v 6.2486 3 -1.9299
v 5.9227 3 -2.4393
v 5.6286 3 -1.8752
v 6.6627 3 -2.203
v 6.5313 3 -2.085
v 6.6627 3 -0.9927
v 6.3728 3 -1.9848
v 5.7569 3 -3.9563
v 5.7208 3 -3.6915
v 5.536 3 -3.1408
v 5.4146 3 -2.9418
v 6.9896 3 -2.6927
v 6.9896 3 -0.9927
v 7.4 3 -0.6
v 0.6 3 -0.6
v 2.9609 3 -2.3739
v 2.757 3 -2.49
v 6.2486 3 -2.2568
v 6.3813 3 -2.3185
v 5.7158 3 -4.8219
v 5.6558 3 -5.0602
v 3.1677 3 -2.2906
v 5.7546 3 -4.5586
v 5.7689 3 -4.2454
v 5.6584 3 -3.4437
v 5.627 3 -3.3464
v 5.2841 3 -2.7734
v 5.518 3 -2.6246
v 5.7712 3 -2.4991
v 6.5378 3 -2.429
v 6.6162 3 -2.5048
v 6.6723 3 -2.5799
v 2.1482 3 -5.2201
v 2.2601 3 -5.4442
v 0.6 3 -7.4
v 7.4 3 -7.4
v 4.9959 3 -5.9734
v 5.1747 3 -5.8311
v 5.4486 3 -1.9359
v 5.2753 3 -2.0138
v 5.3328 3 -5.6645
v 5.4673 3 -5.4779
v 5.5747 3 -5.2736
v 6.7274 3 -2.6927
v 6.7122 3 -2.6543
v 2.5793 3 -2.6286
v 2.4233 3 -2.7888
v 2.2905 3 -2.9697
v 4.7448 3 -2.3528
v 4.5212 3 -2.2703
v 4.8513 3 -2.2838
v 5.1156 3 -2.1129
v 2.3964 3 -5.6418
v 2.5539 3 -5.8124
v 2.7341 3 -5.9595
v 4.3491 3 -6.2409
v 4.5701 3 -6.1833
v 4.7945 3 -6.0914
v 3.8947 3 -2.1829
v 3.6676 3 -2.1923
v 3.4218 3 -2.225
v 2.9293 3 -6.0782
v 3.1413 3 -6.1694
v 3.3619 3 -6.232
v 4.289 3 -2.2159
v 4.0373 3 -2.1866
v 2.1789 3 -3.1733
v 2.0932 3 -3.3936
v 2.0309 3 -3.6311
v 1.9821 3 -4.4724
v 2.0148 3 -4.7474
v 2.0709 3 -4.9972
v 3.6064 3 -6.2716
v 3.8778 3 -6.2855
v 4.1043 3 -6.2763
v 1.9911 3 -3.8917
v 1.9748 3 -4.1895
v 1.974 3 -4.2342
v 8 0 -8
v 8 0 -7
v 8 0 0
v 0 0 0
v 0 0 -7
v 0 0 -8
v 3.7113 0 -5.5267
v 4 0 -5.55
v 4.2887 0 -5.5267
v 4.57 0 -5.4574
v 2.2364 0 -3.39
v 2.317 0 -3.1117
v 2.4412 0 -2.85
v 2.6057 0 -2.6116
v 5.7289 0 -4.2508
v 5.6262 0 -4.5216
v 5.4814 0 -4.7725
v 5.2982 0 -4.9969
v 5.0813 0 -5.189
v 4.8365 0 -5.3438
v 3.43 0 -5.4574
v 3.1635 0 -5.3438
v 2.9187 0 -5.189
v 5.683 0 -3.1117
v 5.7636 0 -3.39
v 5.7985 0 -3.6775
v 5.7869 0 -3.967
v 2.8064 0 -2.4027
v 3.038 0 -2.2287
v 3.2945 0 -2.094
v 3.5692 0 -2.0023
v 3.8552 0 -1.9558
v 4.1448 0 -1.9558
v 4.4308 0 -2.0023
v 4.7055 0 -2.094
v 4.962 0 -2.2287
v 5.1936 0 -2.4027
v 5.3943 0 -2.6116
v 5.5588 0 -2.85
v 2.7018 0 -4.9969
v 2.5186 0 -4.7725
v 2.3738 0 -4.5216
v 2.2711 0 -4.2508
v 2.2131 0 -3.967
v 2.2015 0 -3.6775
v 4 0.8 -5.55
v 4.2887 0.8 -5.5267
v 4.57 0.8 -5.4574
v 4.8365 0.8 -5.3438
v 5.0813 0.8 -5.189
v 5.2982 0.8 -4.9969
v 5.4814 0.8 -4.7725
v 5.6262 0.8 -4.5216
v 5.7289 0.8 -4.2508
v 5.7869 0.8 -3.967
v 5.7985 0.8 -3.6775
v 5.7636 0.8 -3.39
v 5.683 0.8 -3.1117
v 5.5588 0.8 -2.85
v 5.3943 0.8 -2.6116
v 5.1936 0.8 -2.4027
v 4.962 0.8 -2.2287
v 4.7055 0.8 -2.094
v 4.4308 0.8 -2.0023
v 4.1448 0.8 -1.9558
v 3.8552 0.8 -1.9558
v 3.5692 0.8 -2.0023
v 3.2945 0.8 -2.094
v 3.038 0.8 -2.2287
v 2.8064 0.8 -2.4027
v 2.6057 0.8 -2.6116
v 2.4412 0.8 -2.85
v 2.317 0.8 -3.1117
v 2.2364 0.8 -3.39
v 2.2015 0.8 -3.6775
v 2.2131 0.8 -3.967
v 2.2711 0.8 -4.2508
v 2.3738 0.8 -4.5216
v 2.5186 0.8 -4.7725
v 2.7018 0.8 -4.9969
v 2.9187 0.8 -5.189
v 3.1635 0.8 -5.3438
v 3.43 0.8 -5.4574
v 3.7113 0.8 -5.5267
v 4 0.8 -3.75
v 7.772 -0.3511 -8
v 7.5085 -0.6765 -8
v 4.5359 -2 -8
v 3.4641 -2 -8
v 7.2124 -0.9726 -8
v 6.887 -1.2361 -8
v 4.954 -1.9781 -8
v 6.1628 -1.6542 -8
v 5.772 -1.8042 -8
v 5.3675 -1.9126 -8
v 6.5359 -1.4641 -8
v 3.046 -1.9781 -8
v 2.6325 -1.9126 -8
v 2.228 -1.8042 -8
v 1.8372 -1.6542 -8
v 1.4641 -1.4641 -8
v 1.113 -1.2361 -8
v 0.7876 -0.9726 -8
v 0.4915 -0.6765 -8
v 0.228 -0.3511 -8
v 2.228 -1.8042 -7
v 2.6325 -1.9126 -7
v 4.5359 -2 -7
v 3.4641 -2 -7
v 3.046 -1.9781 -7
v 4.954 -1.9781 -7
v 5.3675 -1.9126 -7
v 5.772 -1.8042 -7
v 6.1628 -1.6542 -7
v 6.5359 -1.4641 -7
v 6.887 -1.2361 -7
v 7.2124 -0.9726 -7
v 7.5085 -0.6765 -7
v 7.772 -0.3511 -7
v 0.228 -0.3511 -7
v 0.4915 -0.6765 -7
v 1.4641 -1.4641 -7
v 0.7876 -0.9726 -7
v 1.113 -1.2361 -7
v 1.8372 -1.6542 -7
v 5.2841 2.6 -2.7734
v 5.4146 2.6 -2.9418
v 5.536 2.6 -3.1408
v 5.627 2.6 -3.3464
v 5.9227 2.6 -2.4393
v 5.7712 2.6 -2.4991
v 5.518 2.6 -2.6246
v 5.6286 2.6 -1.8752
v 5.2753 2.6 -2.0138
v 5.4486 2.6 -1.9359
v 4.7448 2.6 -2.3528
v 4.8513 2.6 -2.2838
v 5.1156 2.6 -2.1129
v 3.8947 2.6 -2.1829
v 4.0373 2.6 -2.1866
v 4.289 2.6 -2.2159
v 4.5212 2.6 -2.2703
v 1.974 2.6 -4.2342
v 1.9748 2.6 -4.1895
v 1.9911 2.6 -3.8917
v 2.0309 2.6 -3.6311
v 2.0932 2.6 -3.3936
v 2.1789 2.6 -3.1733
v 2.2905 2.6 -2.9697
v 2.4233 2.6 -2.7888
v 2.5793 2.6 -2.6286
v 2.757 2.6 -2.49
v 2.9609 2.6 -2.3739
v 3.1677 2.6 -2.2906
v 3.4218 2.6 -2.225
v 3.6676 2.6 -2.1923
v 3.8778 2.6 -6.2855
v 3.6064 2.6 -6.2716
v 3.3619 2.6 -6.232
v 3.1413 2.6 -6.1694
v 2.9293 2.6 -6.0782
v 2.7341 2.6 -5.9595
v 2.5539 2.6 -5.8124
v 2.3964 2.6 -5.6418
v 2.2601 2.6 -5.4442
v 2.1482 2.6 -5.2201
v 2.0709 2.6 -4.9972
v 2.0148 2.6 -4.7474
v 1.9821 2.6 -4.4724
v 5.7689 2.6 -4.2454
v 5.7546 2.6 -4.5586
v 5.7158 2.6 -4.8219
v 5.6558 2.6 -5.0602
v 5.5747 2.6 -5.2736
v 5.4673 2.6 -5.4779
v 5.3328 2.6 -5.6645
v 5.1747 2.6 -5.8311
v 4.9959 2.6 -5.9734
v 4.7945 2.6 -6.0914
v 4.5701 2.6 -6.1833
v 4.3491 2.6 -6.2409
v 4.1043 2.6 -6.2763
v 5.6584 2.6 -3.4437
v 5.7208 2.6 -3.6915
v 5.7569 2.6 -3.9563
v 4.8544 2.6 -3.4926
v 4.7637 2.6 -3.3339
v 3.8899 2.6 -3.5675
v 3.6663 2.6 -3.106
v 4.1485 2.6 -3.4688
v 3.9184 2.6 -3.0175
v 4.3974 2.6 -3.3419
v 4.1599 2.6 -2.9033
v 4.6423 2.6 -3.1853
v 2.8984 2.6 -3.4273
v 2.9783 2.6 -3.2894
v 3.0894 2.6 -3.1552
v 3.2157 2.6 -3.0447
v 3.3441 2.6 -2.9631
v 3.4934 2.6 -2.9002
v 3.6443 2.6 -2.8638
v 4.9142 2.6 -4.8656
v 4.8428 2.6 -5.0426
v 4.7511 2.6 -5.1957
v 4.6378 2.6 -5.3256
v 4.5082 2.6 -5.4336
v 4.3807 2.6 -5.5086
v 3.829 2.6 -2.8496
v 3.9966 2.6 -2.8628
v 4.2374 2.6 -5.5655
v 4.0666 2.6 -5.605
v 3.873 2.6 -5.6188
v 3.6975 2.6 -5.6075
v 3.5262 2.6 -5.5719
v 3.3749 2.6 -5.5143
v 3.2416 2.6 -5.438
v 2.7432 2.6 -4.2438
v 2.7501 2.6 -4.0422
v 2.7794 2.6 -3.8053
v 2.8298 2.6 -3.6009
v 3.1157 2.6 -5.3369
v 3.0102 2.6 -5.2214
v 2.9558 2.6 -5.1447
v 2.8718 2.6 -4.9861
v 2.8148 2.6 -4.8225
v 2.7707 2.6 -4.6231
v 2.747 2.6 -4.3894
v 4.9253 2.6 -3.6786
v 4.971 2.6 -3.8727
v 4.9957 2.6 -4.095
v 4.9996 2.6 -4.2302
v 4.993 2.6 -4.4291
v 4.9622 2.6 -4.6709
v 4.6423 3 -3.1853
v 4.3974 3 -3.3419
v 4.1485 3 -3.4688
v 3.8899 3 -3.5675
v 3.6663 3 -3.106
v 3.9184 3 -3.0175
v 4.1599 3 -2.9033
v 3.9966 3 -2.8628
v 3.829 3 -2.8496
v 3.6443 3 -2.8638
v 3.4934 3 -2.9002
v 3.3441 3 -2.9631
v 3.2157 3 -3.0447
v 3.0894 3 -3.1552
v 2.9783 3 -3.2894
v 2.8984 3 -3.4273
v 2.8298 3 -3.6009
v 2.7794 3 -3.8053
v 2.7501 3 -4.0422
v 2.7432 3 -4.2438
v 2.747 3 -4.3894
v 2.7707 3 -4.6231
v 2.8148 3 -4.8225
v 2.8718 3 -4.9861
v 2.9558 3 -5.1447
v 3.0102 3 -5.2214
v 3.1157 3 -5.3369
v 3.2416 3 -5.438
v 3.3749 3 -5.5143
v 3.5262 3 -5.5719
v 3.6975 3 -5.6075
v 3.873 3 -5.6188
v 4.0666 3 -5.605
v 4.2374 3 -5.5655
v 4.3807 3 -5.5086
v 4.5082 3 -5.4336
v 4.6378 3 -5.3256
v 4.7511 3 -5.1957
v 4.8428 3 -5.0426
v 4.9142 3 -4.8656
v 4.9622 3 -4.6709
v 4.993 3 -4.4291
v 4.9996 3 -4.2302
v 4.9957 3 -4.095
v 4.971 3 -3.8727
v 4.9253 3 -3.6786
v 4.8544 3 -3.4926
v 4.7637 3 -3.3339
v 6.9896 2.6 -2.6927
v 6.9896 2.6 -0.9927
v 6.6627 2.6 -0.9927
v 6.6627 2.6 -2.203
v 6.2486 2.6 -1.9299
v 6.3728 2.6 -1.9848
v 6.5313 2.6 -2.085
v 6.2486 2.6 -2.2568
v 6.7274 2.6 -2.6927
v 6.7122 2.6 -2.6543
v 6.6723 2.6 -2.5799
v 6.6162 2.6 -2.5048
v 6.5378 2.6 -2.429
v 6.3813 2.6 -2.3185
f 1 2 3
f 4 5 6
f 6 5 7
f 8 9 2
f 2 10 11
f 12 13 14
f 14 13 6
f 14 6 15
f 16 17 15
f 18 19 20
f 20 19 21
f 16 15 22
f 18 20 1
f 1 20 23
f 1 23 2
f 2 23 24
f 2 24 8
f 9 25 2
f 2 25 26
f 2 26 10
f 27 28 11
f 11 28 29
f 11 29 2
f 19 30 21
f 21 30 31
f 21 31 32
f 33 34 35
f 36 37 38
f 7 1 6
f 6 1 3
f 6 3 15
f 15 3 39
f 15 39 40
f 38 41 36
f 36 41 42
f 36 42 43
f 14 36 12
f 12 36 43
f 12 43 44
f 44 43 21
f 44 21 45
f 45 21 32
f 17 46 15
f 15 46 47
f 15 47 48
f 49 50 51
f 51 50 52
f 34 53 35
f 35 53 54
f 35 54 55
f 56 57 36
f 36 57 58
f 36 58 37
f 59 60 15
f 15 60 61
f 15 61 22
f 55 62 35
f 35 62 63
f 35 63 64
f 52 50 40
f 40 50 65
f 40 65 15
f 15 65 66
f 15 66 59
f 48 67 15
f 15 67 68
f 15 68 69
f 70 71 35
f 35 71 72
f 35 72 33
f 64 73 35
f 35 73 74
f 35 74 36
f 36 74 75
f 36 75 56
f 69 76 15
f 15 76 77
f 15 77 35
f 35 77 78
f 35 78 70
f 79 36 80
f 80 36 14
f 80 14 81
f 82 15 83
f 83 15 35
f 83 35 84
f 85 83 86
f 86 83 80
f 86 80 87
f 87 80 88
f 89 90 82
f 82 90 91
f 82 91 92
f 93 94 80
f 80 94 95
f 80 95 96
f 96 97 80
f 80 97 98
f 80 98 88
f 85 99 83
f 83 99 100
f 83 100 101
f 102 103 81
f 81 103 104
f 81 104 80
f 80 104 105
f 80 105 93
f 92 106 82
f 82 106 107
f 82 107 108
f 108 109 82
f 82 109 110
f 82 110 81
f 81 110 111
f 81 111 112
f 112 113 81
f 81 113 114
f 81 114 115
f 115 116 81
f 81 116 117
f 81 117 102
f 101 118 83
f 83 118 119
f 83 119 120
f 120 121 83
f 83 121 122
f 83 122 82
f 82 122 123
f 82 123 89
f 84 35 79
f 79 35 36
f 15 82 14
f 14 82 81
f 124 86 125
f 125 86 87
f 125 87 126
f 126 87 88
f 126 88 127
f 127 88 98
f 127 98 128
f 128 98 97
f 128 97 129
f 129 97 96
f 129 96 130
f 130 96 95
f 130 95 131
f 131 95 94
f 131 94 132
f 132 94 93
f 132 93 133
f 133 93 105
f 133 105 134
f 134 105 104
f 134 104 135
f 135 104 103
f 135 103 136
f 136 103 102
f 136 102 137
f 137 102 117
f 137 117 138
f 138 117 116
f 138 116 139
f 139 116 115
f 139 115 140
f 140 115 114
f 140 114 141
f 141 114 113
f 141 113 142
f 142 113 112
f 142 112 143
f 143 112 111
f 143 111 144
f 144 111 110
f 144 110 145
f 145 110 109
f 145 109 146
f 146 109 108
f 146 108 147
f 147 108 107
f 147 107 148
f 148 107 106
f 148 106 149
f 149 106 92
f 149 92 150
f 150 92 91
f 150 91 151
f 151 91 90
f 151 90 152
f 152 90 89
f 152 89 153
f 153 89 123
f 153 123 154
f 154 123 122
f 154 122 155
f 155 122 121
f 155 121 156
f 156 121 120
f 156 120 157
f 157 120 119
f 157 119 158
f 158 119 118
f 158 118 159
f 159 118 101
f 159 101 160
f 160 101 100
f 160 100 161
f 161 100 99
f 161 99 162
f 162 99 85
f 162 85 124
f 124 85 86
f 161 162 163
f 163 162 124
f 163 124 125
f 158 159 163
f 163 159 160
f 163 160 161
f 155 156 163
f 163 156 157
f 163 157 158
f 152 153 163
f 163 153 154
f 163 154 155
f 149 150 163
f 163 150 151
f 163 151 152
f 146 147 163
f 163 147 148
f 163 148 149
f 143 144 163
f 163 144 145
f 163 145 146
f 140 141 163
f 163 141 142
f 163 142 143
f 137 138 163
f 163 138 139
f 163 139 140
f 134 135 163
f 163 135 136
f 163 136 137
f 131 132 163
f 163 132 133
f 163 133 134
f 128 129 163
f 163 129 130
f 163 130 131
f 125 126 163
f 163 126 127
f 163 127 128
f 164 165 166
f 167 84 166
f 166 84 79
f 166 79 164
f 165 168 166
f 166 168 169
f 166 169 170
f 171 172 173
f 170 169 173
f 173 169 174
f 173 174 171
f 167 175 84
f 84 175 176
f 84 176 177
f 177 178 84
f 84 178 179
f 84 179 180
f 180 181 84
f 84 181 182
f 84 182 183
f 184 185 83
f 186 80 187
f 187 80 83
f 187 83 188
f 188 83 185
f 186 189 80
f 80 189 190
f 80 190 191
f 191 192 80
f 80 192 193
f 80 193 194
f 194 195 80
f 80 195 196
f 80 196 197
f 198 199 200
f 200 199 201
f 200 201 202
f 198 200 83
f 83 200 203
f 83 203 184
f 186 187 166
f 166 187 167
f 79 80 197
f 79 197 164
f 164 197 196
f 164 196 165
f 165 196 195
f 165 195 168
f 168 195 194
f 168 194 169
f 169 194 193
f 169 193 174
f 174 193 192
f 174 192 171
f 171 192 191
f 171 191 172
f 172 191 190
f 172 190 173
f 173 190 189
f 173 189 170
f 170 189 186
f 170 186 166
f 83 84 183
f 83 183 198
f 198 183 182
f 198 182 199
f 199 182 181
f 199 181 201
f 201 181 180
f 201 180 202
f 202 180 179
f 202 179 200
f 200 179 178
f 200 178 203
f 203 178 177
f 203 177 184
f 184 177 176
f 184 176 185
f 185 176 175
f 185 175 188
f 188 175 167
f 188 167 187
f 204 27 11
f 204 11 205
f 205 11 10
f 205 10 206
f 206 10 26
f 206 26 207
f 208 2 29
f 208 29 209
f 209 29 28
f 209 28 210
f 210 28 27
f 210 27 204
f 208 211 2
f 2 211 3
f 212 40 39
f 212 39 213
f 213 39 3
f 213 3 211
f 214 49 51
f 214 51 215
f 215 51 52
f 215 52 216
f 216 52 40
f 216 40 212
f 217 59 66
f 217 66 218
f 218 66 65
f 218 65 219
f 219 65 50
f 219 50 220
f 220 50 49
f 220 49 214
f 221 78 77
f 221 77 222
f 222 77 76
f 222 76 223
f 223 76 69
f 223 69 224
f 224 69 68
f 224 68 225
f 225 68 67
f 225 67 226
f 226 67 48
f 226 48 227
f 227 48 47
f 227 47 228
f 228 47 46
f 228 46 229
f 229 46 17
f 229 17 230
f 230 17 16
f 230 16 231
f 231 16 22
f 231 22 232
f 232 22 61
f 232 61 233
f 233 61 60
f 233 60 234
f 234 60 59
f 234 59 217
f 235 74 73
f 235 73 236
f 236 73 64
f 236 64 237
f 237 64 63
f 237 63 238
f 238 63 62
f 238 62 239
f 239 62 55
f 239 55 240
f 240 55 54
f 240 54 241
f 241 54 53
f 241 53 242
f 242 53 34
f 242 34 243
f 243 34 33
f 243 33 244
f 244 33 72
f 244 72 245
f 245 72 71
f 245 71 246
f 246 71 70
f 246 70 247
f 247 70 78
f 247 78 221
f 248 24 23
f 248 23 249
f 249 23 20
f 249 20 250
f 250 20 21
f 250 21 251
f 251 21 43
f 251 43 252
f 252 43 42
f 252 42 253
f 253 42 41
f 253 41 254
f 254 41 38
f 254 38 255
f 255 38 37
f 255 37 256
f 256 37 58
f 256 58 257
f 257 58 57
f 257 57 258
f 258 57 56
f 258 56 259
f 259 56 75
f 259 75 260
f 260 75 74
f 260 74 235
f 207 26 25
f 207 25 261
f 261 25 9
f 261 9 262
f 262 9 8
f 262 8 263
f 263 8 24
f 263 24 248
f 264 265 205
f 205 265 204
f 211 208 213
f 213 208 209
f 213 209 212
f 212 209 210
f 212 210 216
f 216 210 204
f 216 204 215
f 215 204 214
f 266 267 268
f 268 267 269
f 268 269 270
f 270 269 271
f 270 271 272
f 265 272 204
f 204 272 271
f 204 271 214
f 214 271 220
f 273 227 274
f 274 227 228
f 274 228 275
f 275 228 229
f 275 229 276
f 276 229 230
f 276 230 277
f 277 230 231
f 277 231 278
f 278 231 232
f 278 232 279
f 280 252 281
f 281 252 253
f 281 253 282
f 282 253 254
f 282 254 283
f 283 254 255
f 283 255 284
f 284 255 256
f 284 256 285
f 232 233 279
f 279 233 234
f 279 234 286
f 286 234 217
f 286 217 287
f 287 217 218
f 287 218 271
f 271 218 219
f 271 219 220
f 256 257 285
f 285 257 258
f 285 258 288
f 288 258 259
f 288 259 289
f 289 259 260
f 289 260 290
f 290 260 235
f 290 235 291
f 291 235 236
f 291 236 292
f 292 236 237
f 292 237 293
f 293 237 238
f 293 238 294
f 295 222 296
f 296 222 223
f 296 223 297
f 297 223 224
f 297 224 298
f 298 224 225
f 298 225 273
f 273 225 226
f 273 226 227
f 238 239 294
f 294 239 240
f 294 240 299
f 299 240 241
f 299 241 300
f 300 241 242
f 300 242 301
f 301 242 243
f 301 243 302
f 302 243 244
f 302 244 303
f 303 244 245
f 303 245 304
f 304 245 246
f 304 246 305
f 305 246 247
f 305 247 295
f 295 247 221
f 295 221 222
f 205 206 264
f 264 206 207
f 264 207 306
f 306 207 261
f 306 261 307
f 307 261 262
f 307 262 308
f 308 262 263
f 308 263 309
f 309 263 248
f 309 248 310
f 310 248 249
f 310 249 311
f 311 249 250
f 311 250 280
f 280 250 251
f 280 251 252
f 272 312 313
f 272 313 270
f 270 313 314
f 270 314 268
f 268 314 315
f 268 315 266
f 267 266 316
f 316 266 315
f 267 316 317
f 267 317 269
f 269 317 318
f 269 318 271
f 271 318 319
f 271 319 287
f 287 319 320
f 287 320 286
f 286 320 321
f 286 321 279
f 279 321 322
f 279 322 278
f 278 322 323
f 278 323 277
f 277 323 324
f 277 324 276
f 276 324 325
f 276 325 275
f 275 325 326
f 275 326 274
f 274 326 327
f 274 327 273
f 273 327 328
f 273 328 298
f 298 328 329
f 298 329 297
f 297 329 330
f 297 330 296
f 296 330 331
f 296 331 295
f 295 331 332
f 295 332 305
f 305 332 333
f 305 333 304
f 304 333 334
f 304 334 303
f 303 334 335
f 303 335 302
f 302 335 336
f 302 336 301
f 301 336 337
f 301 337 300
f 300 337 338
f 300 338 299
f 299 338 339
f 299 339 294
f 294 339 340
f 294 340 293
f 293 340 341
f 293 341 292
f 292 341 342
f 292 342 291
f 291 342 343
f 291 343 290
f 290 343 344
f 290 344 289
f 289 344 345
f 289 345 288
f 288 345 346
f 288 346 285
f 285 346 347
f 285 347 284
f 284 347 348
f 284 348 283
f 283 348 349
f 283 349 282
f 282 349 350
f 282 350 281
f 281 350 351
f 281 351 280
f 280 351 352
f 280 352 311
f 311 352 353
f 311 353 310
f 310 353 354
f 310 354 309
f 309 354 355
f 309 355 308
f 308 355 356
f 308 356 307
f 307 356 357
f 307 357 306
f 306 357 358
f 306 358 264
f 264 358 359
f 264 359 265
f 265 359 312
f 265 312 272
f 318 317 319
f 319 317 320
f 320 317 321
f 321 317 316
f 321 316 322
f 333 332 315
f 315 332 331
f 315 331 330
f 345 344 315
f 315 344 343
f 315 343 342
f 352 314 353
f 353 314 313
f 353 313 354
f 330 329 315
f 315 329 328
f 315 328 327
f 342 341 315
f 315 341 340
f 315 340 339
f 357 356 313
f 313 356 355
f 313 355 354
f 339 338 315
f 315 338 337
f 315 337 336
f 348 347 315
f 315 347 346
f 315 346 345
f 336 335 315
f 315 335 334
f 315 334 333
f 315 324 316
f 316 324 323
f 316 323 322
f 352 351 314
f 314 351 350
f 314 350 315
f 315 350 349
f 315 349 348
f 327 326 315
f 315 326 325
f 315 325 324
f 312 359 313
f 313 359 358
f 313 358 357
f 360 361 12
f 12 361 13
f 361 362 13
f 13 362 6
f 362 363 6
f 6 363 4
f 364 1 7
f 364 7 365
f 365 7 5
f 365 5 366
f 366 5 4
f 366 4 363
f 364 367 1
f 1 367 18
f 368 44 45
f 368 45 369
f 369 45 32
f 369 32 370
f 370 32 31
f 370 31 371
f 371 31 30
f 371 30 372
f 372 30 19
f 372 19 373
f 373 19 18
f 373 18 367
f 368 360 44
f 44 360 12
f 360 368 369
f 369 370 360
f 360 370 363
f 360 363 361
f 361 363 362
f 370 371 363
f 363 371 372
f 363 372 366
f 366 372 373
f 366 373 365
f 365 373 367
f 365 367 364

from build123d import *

# Parameters (mm, degrees)
SKETCH1_W               = 8
SKETCH1_H               = 8
BOSS_EXTRUDE1_DEPTH     = 3
CUT_EXTRUDE1_DEPTH      = 12.704699911
CUT_EXTRUDE1_DEPTH_BACK = 12.704699911
CUT_EXTRUDE2_DEPTH      = 11
SKETCH4_R               = 1.8
CUT_EXTRUDE3_DEPTH      = 0.8
SKETCH5_W               = 8
SKETCH5_H               = 1
BOSS_EXTRUDE2_DEPTH     = 2
FILLET1_R               = 4
CUT_EXTRUDE4_DEPTH      = 0.4
CUT_EXTRUDE5_DEPTH      = 0.4


with BuildPart() as part:
    # Sketch1 → Boss-Extrude1 (new body)
    with BuildSketch(Plane(origin=(0, 0, 0), x_dir=(1, 0, 0), z_dir=(0, 1, 0))):
        with Locations((4, 4)):
            Rectangle(SKETCH1_W, SKETCH1_H)
    extrude(amount=BOSS_EXTRUDE1_DEPTH)

    # Sketch2 → Cut-Extrude1 (cut, two sides: drawn at the far end of the back side and taken through both)
    with BuildSketch(Plane.XY.offset(-CUT_EXTRUDE1_DEPTH_BACK)):
        Polygon((0, 0), (0.6, 3), (0, 3), align=None)
        Polygon((8, 0), (7.4, 3), (8, 3), align=None)
    extrude(amount=CUT_EXTRUDE1_DEPTH + CUT_EXTRUDE1_DEPTH_BACK, mode=Mode.SUBTRACT)

    # Sketch3 → Cut-Extrude2 (cut)
    with BuildSketch(Plane(origin=(0, 0, 0), x_dir=(0, 0, -1), z_dir=(1, 0, 0))):
        Polygon((0, 0), (0.6, 3), (0, 3), align=None)
        Polygon((8, 3), (7.4, 3), (8, 0), align=None)
    extrude(amount=CUT_EXTRUDE2_DEPTH, mode=Mode.SUBTRACT)

    # Sketch4 → Cut-Extrude3 (cut)
    with BuildSketch(Plane.XZ):
        with Locations(Location((4, -3.75, 0), (0, 0, 270))):
            Circle(SKETCH4_R)
    extrude(amount=-CUT_EXTRUDE3_DEPTH, mode=Mode.SUBTRACT)

    # Sketch5 → Boss-Extrude2 (add)
    with BuildSketch(Plane.XZ):
        with Locations((4, -7.5)):
            Rectangle(SKETCH5_W, SKETCH5_H)
    extrude(amount=BOSS_EXTRUDE2_DEPTH)

    # Fillet1
    # the kernel refuses this fillet: 4 mm, written as the material it takes off along each edge
    with BuildSketch(Plane(origin=(8, -2, -16.660254038), x_dir=(0, 1, 0), z_dir=(0, 0, 1)), Plane(origin=(0, -2, 1.660254038), x_dir=(0, 1, 0), z_dir=(0, 0, -1))) as fillet1_piece_1:
        with BuildLine():
            CenterArc((4, 3.464101615), FILLET1_R, 180, 60)
            Line((0, 3.464101615), (-0.08, 3.464101615))
            Line((-0.08, 3.464101615), (-0.08, 0))
            Line((-0.08, 0), (0, -0.08))
            ThreePointArc((0, -0.08), (1, -0.08), (1.96, -0.069282032))
            Line((1.96, -0.069282032), (2, 0))
        make_face()
    extrude(amount=18.320508076, mode=Mode.SUBTRACT)

    # Sketch6 → Cut-Extrude4 (cut)
    with BuildSketch(Plane(origin=(0, 3, 0), x_dir=(1, 0, 0), z_dir=(0, 1, 0))):
        with BuildLine():
            add(Edge.make_bspline(
                [(5.284087955, 2.773445367), (5.333545491, 2.739545524), (5.432652736, 2.671614118), (5.590291823, 2.583736248), (5.752942084, 2.503846486), (5.865979951, 2.460876102), (5.92270975, 2.439310751)],
                knots=[0, 0, 0, 0, 0.994855506, 1.99357661, 2.993045438, 4, 4, 4, 4], degree=3))
            Line((5.92270975, 2.439310751), (5.628639237, 1.875208187))
            add(Edge.make_bspline(
                [(5.628639237, 1.875208187), (5.568520037, 1.893818156), (5.447325875, 1.93133395), (5.332925255, 1.986187111), (5.275273852, 2.013829982)],
                knots=[0, 0, 0, 0, 0.992113803, 2, 2, 2, 2], degree=3))
            add(Edge.make_bspline(
                [(5.275273852, 2.013829982), (5.26961656, 2.016684314), (5.253233801, 2.024950075), (5.223476786, 2.045298413), (5.178074812, 2.072724498), (5.118973761, 2.11071311), (5.045578888, 2.157800121), (4.95765273, 2.213934729), (4.856407872, 2.280704114), (4.783596416, 2.327731001), (4.744825134, 2.35277229)],
                knots=[0, 0, 0, 0, 0.241377655, 0.698997227, 1.371388316, 2.263975901, 3.376788369, 4.695767198, 6.240533187, 8, 8, 8, 8], degree=3))
            add(Edge.make_bspline(
                [(4.744825134, 2.35277229), (4.712670389, 2.339001865), (4.648050063, 2.311327899), (4.547788838, 2.27725121), (4.444978029, 2.248544986), (4.339982896, 2.224200245), (4.232359046, 2.206111381), (4.122258624, 2.192239309), (4.00937299, 2.18410397), (3.933139287, 2.183304154), (3.894664878, 2.182900495)],
                knots=[0, 0, 0, 0, 0.961025642, 1.931341354, 2.907359807, 3.893838693, 4.891829695, 5.905170566, 6.942759923, 8, 8, 8, 8], degree=3))
            add(Edge.make_bspline(
                [(3.894664878, 2.182900495), (3.821683976, 2.184676763), (3.679027131, 2.188148859), (3.471015208, 2.212756542), (3.275562804, 2.255408477), (3.091812023, 2.313667662), (2.920867424, 2.390147666), (2.761229426, 2.482594503), (2.615108223, 2.593406711), (2.480490537, 2.71918809), (2.361392609, 2.861354588), (2.257130725, 3.017424584), (2.168806746, 3.186880722), (2.097587685, 3.370615377), (2.041301668, 3.567142879), (2.002926315, 3.777850586), (1.978227581, 4.001488849), (1.975427333, 4.155321196), (1.973991801, 4.234182546)],
                knots=[0, 0, 0, 0, 1.098101164, 2.146474535, 3.146072545, 4.104420533, 5.041773038, 5.958565538, 6.874115049, 7.795336865, 8.725215067, 9.658214839, 10.614563411, 11.594512188, 12.618591104, 13.685899083, 14.813688224, 16, 16, 16, 16], degree=3))
            add(Edge.make_bspline(
                [(1.973991801, 4.234182546), (1.97543059, 4.313040679), (1.978227497, 4.466335509), (2.002757559, 4.689542909), (2.042412611, 4.899497801), (2.098124704, 5.096337583), (2.170410456, 5.279545107), (2.259079723, 5.449017762), (2.363505524, 5.605417057), (2.484015277, 5.747270094), (2.617919267, 5.874338646), (2.764464989, 5.984327234), (2.9219486, 6.078236158), (3.090996271, 6.154643933), (3.272074664, 6.212871015), (3.463805003, 6.255387163), (3.667248709, 6.280295733), (3.806454886, 6.283712517), (3.877837955, 6.285464598)],
                knots=[0, 0, 0, 0, 1.193283781, 2.319662245, 3.393996131, 4.424093603, 5.411284417, 6.369670503, 7.313761776, 8.251713527, 9.181123148, 10.102053383, 11.01932051, 11.951118596, 12.903560284, 13.893239571, 14.919681386, 16, 16, 16, 16], degree=3))
            add(Edge.make_bspline(
                [(3.877837955, 6.285464598), (3.948708316, 6.284176334), (4.086935049, 6.281663683), (4.288489067, 6.254790298), (4.478939684, 6.214016744), (4.658513444, 6.155241629), (4.826290277, 6.078911265), (4.983143341, 5.98623667), (5.128157857, 5.876434989), (5.26137487, 5.750578969), (5.380523981, 5.609215368), (5.486073462, 5.454669187), (5.572731816, 5.285035211), (5.645736122, 5.103191508), (5.700157026, 4.90736457), (5.740330715, 4.69867705), (5.764520815, 4.476471411), (5.76739165, 4.323719862), (5.768863596, 4.245400495)],
                knots=[0, 0, 0, 0, 1.078752742, 2.104017338, 3.091035458, 4.041673215, 4.975566109, 5.892967701, 6.810684895, 7.740128604, 8.678185021, 9.621404646, 10.583875016, 11.573429805, 12.6009998, 13.674031063, 14.80742018, 16, 16, 16, 16], degree=3))
            add(Edge.make_bspline(
                [(5.768863596, 4.245400495), (5.767275795, 4.16278925), (5.764189157, 4.002195454), (5.737326284, 3.768977018), (5.693780668, 3.550562854), (5.648918616, 3.41330904), (5.627036673, 3.346362034)],
                knots=[0, 0, 0, 0, 1.083667057, 2.106616435, 3.076482036, 4, 4, 4, 4], degree=3))
            add(Edge.make_bspline(
                [(5.627036673, 3.346362034), (5.607421404, 3.297050064), (5.567517691, 3.196733787), (5.488642668, 3.051933408), (5.394797316, 2.909076479), (5.321514211, 2.819296637), (5.284087955, 2.773445367)],
                knots=[0, 0, 0, 0, 0.948216854, 1.928975575, 2.942311585, 4, 4, 4, 4], degree=3))
        make_face()
        with BuildLine():
            add(Edge.make_bspline(
                [(4.642261032, 3.185304341), (4.671182259, 3.216922768), (4.72909393, 3.280235293), (4.800707281, 3.388678336), (4.863230922, 3.50497094), (4.912388312, 3.632014464), (4.951923574, 3.76787431), (4.97951585, 3.913560578), (4.996652709, 4.068707035), (4.998621406, 4.175375245), (4.999632827, 4.230176136)],
                knots=[0, 0, 0, 0, 0.906820982, 1.815812261, 2.745108282, 3.70056618, 4.696560745, 5.740060838, 6.83895416, 8, 8, 8, 8], degree=3))
            add(Edge.make_bspline(
                [(4.999632827, 4.230176136), (4.998745764, 4.286560817), (4.997027382, 4.395786947), (4.982794262, 4.554398979), (4.957747484, 4.70183414), (4.925058455, 4.838707416), (4.88052022, 4.963910999), (4.826807351, 5.078388614), (4.763835344, 5.182421929), (4.690056733, 5.274294514), (4.608907177, 5.355063587), (4.522159409, 5.426414517), (4.428546166, 5.486139657), (4.328544236, 5.534184829), (4.222990468, 5.571989212), (4.111634776, 5.59943433), (3.994225982, 5.615495039), (3.913944994, 5.6176829), (3.873030263, 5.618797931)],
                knots=[0, 0, 0, 0, 1.335693338, 2.587451293, 3.768164612, 4.876224393, 5.916940853, 6.910477009, 7.867661778, 8.790666633, 9.694493319, 10.576027549, 11.446684429, 12.318352473, 13.199023277, 14.098364444, 15.030842682, 16, 16, 16, 16], degree=3))
            add(Edge.make_bspline(
                [(3.873030263, 5.618797931), (3.831841607, 5.617719084), (3.751279942, 5.615608947), (3.633755604, 5.599158788), (3.522145798, 5.573035665), (3.416723766, 5.534932642), (3.316536446, 5.486796326), (3.222573421, 5.427181815), (3.134847786, 5.356951252), (3.053289548, 5.276692152), (2.980446173, 5.184790487), (2.915694165, 5.082568667), (2.862164439, 4.968850144), (2.819178201, 4.84427298), (2.784825228, 4.709477379), (2.760087026, 4.563739976), (2.745835322, 4.407279692), (2.744110931, 4.299383286), (2.74322257, 4.243797931)],
                knots=[0, 0, 0, 0, 0.980107447, 1.917010591, 2.819119613, 3.703969481, 4.579773866, 5.459928929, 6.346604172, 7.250235365, 8.177620171, 9.131899985, 10.124404622, 11.161948974, 12.264485933, 13.431998172, 14.677033863, 16, 16, 16, 16], degree=3))
            add(Edge.make_bspline(
                [(2.74322257, 4.243797931), (2.744089067, 4.187408458), (2.745771696, 4.077907007), (2.760333697, 3.91913972), (2.783941374, 3.771215716), (2.817547327, 3.634196218), (2.86051391, 3.507924697), (2.913437174, 3.392577112), (2.976036542, 3.288297709), (3.048513511, 3.196032652), (3.128245057, 3.114861766), (3.213441608, 3.04409835), (3.303411645, 2.983479498), (3.39857486, 2.934226809), (3.498956775, 2.896402137), (3.604207339, 2.869103357), (3.714939061, 2.852831885), (3.790443662, 2.850669982), (3.82895975, 2.849567162)],
                knots=[0, 0, 0, 0, 1.356840463, 2.634818045, 3.833173645, 4.958776583, 6.025986406, 7.038359119, 8.007356852, 8.946032033, 9.855123386, 10.740685277, 11.607120956, 12.460971081, 13.313368256, 14.183325659, 15.073285775, 16, 16, 16, 16], degree=3))
            add(Edge.make_bspline(
                [(3.82895975, 2.849567162), (3.857844622, 2.850073951), (3.914741814, 2.851072222), (3.998801079, 2.862293633), (4.080683558, 2.878515583), (4.133570622, 2.895033243), (4.159889237, 2.903253059)],
                knots=[0, 0, 0, 0, 1.028828871, 2.026578908, 3.017950568, 4, 4, 4, 4], degree=3))
            add(Edge.make_bspline(
                [(4.159889237, 2.903253059), (4.119539232, 2.924336443), (4.039635796, 2.966086993), (3.916101198, 3.019284802), (3.792319766, 3.067214804), (3.708133251, 3.09310976), (3.666299493, 3.105977418)],
                knots=[0, 0, 0, 0, 1.021704821, 2.023239566, 3.017713044, 4, 4, 4, 4], degree=3))
            Line((3.666299493, 3.105977418), (3.889857186, 3.56751588))
            add(Edge.make_bspline(
                [(3.889857186, 3.56751588), (3.955233958, 3.544923565), (4.086618506, 3.49952088), (4.276409331, 3.409366748), (4.463555304, 3.306758821), (4.582244486, 3.226093623), (4.642261032, 3.185304341)],
                knots=[0, 0, 0, 0, 0.979271047, 1.967993817, 2.972492781, 4, 4, 4, 4], degree=3))
        make_face(mode=Mode.SUBTRACT)
    extrude(amount=-CUT_EXTRUDE4_DEPTH, mode=Mode.SUBTRACT)

    # Sketch7 → Cut-Extrude5 (cut)
    with BuildSketch(Plane(origin=(0, 3, 0), x_dir=(1, 0, 0), z_dir=(0, 1, 0))):
        with BuildLine():
            Line((6.989609495, 0.992731968), (6.662686419, 0.992731968))
            Line((6.662686419, 0.992731968), (6.662686419, 2.203028442))
            add(Edge.make_bspline(
                [(6.662686419, 2.203028442), (6.647868508, 2.187985499), (6.618433709, 2.158103687), (6.571421698, 2.116422543), (6.522616062, 2.07764809), (6.471533827, 2.042148614), (6.418842766, 2.009418309), (6.364004407, 1.979715431), (6.307416238, 1.952628999), (6.268215163, 1.937491891), (6.248583854, 1.929911455)],
                knots=[0, 0, 0, 0, 1.012567276, 2.011397996, 3.011400399, 4.000747768, 4.993445519, 5.985067596, 6.990952157, 8, 8, 8, 8], degree=3))
            Line((6.248583854, 1.929911455), (6.248583854, 2.256834532))
            add(Edge.make_bspline(
                [(6.248583854, 2.256834532), (6.270355964, 2.264998139), (6.315923296, 2.282083933), (6.383165354, 2.318426283), (6.453350876, 2.363421778), (6.512310721, 2.40755194), (6.559122414, 2.44678718), (6.591840229, 2.478326157), (6.622155165, 2.510623705), (6.648927745, 2.544722271), (6.672860762, 2.579932457), (6.694066458, 2.616196741), (6.712732345, 2.65362968), (6.722503807, 2.679697149), (6.727389944, 2.692731968)],
                knots=[0, 0, 0, 0, 1.253673617, 2.623841347, 4.114270668, 5.751233548, 6.594491912, 7.409089316, 8.202422231, 8.983165545, 9.746111525, 10.498431446, 11.249153235, 12, 12, 12, 12], degree=3))
            Line((6.727389944, 2.692731968), (6.989609495, 2.692731968))
            Line((6.989609495, 2.692731968), (6.989609495, 0.992731968))
        make_face()
    extrude(amount=-CUT_EXTRUDE5_DEPTH, mode=Mode.SUBTRACT)


solid = part.part
